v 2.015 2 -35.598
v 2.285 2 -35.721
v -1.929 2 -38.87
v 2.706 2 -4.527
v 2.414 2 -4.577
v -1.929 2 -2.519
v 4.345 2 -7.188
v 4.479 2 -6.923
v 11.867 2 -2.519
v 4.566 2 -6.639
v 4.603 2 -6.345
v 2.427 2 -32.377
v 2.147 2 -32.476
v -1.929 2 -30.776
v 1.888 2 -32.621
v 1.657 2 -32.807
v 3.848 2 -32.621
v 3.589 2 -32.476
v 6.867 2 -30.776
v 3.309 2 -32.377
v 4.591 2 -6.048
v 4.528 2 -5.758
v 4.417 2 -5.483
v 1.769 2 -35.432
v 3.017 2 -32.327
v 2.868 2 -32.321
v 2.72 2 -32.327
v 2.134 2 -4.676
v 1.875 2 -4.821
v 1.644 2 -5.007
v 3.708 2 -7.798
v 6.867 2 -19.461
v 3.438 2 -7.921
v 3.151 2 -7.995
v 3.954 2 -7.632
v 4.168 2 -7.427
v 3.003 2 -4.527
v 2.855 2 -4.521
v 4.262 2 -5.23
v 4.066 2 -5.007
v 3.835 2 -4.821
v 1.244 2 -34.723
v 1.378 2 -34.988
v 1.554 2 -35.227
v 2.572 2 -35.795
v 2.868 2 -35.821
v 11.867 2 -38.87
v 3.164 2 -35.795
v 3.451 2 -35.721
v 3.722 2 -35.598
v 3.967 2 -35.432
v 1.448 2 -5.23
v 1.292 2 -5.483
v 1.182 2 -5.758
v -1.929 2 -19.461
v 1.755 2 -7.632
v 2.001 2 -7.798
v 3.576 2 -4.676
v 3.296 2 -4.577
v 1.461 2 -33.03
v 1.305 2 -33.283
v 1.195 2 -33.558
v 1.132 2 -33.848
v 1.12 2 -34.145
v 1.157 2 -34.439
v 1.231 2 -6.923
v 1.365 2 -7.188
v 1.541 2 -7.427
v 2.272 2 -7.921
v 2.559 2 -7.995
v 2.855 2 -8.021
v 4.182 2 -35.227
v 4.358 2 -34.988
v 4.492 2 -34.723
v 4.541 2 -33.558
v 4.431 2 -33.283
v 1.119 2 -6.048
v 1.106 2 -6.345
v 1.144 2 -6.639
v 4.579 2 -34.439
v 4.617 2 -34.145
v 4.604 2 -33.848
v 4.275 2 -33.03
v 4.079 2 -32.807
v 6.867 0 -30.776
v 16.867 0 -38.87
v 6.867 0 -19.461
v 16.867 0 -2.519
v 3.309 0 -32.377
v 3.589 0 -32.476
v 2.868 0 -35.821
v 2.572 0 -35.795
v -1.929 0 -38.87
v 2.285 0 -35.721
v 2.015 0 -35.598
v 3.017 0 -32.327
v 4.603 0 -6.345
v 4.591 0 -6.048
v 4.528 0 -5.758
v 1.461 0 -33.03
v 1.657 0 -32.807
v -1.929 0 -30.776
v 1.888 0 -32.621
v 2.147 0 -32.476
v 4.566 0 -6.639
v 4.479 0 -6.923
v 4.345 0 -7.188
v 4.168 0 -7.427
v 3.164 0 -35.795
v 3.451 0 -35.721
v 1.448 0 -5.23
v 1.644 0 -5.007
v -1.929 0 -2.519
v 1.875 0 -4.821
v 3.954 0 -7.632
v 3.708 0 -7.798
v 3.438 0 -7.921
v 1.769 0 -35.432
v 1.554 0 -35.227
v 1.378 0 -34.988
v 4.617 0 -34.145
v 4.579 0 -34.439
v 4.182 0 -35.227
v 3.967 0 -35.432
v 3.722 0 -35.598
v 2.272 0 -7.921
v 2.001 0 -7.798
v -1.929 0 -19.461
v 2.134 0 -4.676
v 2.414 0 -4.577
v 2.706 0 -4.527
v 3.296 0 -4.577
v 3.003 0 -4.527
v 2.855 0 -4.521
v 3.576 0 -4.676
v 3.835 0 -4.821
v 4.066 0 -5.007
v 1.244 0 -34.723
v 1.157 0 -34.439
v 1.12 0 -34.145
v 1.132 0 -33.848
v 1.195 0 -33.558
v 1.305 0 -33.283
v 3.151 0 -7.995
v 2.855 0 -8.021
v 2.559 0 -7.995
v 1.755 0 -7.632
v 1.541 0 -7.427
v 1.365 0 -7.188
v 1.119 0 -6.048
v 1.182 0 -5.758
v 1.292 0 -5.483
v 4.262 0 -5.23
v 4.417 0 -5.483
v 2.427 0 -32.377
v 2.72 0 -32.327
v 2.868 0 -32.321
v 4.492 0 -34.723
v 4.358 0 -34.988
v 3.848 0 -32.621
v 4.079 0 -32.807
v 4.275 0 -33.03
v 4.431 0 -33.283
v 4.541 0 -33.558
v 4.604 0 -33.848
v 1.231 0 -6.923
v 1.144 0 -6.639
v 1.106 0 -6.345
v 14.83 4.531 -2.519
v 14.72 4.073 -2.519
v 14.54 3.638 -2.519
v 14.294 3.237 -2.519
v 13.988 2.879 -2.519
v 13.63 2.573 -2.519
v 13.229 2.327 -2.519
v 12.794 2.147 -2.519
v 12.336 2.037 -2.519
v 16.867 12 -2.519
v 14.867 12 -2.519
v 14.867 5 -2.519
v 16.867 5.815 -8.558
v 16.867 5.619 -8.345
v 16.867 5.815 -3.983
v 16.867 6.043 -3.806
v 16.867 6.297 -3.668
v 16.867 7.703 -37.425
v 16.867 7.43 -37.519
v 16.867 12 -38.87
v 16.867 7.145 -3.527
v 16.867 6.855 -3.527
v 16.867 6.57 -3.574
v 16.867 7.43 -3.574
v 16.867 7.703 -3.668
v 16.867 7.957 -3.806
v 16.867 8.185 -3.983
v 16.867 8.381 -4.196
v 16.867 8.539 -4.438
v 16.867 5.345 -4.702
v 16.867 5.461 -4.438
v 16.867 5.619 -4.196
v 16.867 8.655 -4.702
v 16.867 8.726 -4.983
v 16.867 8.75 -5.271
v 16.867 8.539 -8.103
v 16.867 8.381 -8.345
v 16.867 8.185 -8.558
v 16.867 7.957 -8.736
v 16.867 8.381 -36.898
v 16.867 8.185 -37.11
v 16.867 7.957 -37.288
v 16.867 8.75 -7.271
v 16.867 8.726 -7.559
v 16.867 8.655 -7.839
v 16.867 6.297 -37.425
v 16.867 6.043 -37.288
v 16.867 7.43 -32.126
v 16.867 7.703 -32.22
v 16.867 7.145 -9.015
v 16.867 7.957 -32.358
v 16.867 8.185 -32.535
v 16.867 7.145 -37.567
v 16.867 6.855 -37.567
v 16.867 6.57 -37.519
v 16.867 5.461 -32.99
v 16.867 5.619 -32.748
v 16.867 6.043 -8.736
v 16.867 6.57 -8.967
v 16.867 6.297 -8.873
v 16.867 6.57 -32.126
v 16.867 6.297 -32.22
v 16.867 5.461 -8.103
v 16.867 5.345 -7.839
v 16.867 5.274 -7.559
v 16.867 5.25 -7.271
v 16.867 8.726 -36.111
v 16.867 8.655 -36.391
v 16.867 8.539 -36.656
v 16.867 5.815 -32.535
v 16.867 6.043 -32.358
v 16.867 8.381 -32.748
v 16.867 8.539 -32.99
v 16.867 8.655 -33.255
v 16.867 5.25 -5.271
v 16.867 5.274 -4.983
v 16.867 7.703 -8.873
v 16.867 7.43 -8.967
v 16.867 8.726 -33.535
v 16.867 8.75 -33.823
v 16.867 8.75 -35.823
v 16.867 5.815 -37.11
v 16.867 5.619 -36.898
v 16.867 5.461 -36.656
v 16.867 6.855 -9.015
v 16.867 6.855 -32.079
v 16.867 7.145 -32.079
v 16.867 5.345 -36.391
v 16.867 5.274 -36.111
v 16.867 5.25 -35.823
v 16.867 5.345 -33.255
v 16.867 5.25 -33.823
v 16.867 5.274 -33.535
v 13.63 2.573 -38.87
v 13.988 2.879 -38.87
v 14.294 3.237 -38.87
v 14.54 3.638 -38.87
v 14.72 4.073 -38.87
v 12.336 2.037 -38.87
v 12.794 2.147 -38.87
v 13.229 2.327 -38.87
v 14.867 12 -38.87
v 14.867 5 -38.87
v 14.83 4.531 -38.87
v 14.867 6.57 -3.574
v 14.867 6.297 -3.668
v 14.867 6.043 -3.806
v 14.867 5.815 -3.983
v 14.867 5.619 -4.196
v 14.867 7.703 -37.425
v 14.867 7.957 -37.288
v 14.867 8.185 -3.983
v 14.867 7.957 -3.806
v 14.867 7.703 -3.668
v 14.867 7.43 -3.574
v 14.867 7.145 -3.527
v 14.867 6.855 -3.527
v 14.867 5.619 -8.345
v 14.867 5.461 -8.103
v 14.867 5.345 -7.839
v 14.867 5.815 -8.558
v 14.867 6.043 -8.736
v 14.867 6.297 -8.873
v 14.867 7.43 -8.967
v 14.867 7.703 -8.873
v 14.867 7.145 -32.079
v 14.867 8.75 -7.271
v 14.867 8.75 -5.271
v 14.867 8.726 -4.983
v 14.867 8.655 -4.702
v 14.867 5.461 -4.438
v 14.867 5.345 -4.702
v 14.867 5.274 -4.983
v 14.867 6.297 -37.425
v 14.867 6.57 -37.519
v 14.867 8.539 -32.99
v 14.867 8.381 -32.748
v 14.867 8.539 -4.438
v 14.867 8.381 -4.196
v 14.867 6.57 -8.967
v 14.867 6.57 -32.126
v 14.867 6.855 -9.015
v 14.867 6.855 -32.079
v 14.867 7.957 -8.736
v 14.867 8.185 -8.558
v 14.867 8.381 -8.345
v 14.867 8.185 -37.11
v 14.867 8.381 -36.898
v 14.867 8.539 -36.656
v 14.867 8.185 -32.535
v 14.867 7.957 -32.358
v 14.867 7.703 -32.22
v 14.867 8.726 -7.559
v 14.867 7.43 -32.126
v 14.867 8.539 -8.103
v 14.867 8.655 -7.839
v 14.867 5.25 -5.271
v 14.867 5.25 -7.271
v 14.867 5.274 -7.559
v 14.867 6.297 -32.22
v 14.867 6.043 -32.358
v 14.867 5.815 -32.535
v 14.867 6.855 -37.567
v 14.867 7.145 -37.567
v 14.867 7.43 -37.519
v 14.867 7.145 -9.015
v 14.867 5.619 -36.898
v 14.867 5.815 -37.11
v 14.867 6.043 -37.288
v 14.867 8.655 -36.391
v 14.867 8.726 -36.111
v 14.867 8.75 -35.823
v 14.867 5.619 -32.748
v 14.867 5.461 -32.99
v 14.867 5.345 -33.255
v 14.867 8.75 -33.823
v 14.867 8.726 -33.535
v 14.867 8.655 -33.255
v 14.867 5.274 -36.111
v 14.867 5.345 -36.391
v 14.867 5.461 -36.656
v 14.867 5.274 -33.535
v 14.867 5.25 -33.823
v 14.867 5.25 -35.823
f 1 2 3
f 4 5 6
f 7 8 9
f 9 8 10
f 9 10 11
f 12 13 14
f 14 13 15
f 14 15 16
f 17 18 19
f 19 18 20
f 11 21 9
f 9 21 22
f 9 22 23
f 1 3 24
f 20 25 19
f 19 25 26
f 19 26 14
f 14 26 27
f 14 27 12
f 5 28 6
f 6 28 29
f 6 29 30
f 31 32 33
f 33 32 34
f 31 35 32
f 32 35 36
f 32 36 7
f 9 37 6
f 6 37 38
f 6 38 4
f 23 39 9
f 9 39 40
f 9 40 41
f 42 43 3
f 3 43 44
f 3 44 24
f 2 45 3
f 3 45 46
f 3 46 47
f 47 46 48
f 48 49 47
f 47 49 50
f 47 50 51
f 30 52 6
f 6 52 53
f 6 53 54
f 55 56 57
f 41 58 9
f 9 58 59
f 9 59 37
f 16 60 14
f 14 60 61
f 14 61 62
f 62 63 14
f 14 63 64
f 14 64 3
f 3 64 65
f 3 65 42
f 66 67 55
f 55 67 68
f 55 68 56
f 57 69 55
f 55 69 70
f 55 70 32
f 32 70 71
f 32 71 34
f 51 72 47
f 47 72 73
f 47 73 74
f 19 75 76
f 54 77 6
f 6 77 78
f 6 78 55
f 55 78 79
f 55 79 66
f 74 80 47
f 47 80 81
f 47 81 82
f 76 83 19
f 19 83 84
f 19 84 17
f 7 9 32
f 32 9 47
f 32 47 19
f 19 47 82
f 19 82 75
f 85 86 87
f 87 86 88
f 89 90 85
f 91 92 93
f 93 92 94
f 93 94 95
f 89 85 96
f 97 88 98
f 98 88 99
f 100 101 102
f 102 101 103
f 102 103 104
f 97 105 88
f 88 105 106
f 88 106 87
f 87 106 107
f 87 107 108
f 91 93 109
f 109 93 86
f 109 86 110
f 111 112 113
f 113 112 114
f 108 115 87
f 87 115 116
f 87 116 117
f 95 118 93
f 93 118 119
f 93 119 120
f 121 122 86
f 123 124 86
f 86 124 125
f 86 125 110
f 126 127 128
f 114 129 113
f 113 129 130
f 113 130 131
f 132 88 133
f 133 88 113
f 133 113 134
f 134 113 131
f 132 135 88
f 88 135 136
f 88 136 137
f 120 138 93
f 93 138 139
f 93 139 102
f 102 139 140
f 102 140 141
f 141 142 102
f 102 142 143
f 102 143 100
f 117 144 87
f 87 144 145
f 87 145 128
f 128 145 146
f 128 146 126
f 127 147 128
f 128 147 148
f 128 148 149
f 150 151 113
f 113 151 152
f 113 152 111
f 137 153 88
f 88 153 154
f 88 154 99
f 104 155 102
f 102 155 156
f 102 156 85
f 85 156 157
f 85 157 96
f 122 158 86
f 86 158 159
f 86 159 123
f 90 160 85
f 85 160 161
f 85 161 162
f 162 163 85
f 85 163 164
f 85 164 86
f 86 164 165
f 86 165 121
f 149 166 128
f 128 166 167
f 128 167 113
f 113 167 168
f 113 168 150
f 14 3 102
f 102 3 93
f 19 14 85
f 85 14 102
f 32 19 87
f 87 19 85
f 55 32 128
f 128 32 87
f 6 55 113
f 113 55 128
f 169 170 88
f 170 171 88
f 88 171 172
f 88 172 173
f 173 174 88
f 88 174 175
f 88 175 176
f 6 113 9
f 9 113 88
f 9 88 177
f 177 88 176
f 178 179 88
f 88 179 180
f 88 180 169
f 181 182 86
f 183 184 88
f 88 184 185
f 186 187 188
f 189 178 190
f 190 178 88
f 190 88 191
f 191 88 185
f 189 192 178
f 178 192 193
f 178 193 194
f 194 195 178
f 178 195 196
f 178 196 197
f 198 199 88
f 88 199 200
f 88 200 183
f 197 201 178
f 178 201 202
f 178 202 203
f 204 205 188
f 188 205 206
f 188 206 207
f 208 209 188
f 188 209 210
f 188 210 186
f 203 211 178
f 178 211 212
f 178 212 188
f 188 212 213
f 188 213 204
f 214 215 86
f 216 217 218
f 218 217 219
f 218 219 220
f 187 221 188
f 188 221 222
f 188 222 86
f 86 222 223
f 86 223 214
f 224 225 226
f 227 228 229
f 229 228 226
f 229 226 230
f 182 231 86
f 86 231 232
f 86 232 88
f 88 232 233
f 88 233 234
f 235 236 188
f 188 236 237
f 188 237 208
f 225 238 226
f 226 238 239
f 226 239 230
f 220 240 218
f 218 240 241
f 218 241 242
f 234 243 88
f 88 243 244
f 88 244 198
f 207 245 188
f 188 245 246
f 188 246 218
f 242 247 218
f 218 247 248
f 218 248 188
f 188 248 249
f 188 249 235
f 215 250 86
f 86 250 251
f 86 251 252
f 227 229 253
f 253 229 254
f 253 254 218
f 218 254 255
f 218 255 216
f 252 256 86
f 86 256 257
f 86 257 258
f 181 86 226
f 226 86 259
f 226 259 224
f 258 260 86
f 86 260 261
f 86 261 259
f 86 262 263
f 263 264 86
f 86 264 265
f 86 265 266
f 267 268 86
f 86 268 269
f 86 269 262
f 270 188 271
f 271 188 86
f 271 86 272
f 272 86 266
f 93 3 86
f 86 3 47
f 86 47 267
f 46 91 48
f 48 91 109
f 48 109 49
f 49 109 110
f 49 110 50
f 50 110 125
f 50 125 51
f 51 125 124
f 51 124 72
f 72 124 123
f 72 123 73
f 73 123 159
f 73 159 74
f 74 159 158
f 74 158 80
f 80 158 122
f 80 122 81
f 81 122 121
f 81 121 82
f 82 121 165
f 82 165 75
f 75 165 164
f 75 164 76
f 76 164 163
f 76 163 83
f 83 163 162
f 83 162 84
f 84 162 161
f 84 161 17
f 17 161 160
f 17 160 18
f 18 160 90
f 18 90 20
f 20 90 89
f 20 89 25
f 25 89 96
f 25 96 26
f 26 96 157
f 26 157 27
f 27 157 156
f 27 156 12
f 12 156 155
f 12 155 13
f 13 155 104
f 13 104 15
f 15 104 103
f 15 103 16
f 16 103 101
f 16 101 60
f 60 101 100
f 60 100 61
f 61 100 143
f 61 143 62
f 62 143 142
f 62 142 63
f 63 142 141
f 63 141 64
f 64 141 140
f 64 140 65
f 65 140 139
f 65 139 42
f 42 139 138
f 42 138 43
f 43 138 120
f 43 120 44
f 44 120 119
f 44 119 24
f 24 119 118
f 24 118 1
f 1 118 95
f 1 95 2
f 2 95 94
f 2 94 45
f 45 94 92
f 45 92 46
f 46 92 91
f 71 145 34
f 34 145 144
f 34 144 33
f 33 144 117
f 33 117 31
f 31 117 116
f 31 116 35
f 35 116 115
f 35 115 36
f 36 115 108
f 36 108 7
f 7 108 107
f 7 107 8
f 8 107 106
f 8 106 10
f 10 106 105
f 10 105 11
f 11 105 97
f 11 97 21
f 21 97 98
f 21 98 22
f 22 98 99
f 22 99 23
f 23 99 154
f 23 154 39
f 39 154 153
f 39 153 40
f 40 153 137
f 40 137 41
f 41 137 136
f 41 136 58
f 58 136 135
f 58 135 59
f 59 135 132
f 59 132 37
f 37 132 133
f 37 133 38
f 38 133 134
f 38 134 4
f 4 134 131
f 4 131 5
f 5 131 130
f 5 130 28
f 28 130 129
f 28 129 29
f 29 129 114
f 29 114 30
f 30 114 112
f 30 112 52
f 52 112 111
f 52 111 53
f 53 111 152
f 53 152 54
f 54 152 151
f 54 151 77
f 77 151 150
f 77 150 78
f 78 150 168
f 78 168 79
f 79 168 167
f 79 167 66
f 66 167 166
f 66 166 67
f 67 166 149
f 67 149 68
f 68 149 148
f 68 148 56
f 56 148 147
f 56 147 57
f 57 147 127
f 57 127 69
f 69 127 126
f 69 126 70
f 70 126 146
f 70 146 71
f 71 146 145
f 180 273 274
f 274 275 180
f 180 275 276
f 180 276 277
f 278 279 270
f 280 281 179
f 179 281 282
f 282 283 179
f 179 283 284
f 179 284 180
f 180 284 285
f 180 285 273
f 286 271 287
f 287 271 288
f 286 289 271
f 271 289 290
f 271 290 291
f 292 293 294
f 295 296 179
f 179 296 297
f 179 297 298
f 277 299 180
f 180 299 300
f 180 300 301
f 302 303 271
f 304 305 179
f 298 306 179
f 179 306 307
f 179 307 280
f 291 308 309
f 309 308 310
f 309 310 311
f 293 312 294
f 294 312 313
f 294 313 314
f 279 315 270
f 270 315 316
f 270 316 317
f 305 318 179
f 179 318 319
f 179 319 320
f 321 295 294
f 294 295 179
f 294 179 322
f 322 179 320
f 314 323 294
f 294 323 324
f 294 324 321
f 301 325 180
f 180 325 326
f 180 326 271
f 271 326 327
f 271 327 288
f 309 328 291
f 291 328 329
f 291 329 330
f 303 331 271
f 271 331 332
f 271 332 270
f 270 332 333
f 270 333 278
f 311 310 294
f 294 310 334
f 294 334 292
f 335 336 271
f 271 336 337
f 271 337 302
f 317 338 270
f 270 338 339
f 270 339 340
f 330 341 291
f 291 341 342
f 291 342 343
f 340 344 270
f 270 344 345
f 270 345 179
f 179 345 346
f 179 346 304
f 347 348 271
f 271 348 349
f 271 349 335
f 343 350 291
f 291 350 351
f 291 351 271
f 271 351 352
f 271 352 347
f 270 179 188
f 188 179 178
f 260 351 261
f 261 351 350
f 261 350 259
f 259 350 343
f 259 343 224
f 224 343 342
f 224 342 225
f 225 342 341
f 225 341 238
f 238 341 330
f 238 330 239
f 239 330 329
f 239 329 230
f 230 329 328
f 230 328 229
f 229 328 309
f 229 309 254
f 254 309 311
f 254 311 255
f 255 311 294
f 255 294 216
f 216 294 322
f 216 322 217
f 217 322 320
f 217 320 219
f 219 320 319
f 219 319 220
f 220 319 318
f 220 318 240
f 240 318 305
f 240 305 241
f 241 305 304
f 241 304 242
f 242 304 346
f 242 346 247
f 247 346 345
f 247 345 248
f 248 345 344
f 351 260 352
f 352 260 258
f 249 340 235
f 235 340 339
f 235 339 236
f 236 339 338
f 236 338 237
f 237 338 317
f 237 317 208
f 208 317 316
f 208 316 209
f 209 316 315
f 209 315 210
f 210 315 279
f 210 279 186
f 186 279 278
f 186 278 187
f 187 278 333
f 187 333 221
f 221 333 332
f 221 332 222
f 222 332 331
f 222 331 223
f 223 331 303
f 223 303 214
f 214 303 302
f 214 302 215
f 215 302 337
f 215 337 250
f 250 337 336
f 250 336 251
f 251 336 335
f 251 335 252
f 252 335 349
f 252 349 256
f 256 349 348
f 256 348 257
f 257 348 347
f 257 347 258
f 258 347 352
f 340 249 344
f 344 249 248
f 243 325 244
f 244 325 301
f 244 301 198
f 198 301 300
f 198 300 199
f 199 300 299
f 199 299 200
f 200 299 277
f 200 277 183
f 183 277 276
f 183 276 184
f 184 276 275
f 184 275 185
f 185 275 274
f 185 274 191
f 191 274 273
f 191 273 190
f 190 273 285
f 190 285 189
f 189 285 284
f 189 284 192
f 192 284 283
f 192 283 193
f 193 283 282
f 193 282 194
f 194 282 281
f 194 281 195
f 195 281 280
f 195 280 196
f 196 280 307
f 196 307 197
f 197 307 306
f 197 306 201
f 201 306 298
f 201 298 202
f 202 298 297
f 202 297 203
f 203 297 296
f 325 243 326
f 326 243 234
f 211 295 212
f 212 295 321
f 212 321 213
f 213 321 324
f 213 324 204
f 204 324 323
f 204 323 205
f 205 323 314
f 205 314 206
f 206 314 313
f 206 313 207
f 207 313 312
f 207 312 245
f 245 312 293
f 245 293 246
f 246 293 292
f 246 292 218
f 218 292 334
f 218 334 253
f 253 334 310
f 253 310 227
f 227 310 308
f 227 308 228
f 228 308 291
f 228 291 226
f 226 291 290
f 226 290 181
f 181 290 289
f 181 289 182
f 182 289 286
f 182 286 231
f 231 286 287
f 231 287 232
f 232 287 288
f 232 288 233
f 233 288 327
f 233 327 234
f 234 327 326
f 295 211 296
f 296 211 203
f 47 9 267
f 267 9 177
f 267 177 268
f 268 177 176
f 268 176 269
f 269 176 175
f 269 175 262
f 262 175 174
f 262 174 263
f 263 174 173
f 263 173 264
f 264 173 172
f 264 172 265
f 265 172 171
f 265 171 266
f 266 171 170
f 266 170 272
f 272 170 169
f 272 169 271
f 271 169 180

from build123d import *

# Parameters (mm, degrees)
SKETCH1_R           = 1.75
BOSS_EXTRUDE1_DEPTH = 2
SKETCH4_W           = 2
SKETCH4_H           = 36.35059407
BOSS_EXTRUDE3_DEPTH = 10
CUT_EXTRUDE1_DEPTH  = 10
FILLET1_R           = 3


with BuildPart() as part:
    # Sketch1 → Boss-Extrude1 (new body)
    with BuildSketch(Plane(origin=(0, 0, 0), x_dir=(1, 0, 0), z_dir=(0, 1, 0))):
        Polygon((5.603006234, 2.519255437), (16.866529546, 2.519255437), (16.866529546, 38.869849507), (4.37040298, 38.869849507), (-1.929271174, 38.869849507), (-1.929271174, 30.775756588), (6.866529546, 30.775756588), (6.866529546, 19.460556696), (-1.929271174, 19.460556696), (-1.929271174, 2.519255437), align=None)
        with Locations(Location((2.868105939, 34.070567936, 0), (0, 0, 270))):
            Circle(SKETCH1_R, mode=Mode.SUBTRACT)
        with Locations(Location((2.854801247, 6.270571119, 0), (0, 0, 270))):
            Circle(SKETCH1_R, mode=Mode.SUBTRACT)
    extrude(amount=BOSS_EXTRUDE1_DEPTH)

    # Sketch4 → Boss-Extrude3 (add)
    with BuildSketch(Plane(origin=(0, 2, 0), x_dir=(1, 0, 0), z_dir=(0, 1, 0))):
        with Locations((15.866529546, 20.694552472)):
            Rectangle(SKETCH4_W, SKETCH4_H)
    extrude(amount=BOSS_EXTRUDE3_DEPTH)

    # Sketch5 → Cut-Extrude1 (cut)
    with BuildSketch(Plane.ZY.offset(-14.866529546)):
        with BuildLine():
            Line((-5.270571119, 5.25), (-7.270571119, 5.25))
            ThreePointArc((-7.270571119, 5.25), (-9.020571119, 7), (-7.270571119, 8.75))
            Line((-7.270571119, 8.75), (-5.270571119, 8.75))
            ThreePointArc((-5.270571119, 8.75), (-3.520571119, 7), (-5.270571119, 5.25))
        make_face()
        with BuildLine():
            Line((-33.822803047, 5.25), (-35.822803047, 5.25))
            ThreePointArc((-35.822803047, 5.25), (-37.572803047, 7), (-35.822803047, 8.75))
            Line((-35.822803047, 8.75), (-33.822803047, 8.75))
            ThreePointArc((-33.822803047, 8.75), (-32.072803047, 7), (-33.822803047, 5.25))
        make_face()
    extrude(amount=-CUT_EXTRUDE1_DEPTH, mode=Mode.SUBTRACT)

    # Fillet1
    fillet1_edges = [part.edges().sort_by_distance(p)[0] for p in [
        (14.866529546, 2, -20.694552472),
    ]]
    fillet(fillet1_edges, radius=FILLET1_R)


solid = part.part
